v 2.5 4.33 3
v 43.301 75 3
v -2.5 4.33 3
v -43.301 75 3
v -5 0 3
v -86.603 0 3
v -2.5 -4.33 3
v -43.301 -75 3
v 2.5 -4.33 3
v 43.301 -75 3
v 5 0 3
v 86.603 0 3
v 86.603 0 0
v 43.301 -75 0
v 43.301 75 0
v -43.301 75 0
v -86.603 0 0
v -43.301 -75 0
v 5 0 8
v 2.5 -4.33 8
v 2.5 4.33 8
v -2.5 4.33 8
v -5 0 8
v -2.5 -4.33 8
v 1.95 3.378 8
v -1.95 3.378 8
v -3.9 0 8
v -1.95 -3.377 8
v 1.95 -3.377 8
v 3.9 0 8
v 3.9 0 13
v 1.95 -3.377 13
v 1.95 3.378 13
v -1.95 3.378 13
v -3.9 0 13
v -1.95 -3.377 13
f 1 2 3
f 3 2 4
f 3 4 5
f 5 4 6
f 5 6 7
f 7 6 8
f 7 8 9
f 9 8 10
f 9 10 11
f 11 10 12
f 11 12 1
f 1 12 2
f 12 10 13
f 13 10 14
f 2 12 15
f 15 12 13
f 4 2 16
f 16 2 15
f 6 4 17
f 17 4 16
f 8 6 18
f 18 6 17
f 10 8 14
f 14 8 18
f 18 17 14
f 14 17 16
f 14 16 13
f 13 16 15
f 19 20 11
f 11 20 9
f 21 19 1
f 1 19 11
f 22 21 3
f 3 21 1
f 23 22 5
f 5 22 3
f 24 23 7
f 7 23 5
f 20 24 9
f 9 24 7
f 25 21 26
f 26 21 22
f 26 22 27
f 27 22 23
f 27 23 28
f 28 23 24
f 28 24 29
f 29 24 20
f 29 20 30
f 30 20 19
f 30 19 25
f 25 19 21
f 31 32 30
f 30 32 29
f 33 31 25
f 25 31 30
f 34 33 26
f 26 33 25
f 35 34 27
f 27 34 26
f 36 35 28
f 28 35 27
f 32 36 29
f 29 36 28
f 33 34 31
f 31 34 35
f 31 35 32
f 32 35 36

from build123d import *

# Parameters (mm, degrees)
SALIENTE_EXTRUIR1_DEPTH = 3.000000026
SALIENTE_EXTRUIR2_DEPTH = 5.000000354
SALIENTE_EXTRUIR3_DEPTH = 4.999999888


with BuildPart() as part:
    # Croquis1 → Saliente-Extruir1 (new body)
    with BuildSketch(Plane(origin=(0, 0, 0), x_dir=(-1, 0, 0), z_dir=(0, 0, -1))):
        Polygon((86.602535383, 0), (43.301267691, 75), (-43.301267691, 75), (-86.602535383, 0), (-43.301267691, -75), (43.301267691, -75), align=None)
    extrude(amount=-SALIENTE_EXTRUIR1_DEPTH)

    # Croquis2 → Saliente-Extruir2 (add)
    with BuildSketch(Plane.XY.offset(3.000000026)):
        Polygon((-2.499997616, 4.330128431), (2.499997616, 4.330128431), (5.000002682, 0), (2.499997616, -4.330128431), (-2.499997616, -4.330128431), (-5.000002682, 0), align=None)
    extrude(amount=SALIENTE_EXTRUIR2_DEPTH)

    # Croquis3 → Saliente-Extruir3 (add)
    with BuildSketch(Plane.XY.offset(8.00000038)):
        Polygon((-1.949995756, -3.377497196), (-3.899998963, 0), (-1.949995756, 3.377497196), (1.949995756, 3.377497196), (3.899998963, 0), (1.949995756, -3.377497196), align=None)
    extrude(amount=SALIENTE_EXTRUIR3_DEPTH)


solid = part.part
